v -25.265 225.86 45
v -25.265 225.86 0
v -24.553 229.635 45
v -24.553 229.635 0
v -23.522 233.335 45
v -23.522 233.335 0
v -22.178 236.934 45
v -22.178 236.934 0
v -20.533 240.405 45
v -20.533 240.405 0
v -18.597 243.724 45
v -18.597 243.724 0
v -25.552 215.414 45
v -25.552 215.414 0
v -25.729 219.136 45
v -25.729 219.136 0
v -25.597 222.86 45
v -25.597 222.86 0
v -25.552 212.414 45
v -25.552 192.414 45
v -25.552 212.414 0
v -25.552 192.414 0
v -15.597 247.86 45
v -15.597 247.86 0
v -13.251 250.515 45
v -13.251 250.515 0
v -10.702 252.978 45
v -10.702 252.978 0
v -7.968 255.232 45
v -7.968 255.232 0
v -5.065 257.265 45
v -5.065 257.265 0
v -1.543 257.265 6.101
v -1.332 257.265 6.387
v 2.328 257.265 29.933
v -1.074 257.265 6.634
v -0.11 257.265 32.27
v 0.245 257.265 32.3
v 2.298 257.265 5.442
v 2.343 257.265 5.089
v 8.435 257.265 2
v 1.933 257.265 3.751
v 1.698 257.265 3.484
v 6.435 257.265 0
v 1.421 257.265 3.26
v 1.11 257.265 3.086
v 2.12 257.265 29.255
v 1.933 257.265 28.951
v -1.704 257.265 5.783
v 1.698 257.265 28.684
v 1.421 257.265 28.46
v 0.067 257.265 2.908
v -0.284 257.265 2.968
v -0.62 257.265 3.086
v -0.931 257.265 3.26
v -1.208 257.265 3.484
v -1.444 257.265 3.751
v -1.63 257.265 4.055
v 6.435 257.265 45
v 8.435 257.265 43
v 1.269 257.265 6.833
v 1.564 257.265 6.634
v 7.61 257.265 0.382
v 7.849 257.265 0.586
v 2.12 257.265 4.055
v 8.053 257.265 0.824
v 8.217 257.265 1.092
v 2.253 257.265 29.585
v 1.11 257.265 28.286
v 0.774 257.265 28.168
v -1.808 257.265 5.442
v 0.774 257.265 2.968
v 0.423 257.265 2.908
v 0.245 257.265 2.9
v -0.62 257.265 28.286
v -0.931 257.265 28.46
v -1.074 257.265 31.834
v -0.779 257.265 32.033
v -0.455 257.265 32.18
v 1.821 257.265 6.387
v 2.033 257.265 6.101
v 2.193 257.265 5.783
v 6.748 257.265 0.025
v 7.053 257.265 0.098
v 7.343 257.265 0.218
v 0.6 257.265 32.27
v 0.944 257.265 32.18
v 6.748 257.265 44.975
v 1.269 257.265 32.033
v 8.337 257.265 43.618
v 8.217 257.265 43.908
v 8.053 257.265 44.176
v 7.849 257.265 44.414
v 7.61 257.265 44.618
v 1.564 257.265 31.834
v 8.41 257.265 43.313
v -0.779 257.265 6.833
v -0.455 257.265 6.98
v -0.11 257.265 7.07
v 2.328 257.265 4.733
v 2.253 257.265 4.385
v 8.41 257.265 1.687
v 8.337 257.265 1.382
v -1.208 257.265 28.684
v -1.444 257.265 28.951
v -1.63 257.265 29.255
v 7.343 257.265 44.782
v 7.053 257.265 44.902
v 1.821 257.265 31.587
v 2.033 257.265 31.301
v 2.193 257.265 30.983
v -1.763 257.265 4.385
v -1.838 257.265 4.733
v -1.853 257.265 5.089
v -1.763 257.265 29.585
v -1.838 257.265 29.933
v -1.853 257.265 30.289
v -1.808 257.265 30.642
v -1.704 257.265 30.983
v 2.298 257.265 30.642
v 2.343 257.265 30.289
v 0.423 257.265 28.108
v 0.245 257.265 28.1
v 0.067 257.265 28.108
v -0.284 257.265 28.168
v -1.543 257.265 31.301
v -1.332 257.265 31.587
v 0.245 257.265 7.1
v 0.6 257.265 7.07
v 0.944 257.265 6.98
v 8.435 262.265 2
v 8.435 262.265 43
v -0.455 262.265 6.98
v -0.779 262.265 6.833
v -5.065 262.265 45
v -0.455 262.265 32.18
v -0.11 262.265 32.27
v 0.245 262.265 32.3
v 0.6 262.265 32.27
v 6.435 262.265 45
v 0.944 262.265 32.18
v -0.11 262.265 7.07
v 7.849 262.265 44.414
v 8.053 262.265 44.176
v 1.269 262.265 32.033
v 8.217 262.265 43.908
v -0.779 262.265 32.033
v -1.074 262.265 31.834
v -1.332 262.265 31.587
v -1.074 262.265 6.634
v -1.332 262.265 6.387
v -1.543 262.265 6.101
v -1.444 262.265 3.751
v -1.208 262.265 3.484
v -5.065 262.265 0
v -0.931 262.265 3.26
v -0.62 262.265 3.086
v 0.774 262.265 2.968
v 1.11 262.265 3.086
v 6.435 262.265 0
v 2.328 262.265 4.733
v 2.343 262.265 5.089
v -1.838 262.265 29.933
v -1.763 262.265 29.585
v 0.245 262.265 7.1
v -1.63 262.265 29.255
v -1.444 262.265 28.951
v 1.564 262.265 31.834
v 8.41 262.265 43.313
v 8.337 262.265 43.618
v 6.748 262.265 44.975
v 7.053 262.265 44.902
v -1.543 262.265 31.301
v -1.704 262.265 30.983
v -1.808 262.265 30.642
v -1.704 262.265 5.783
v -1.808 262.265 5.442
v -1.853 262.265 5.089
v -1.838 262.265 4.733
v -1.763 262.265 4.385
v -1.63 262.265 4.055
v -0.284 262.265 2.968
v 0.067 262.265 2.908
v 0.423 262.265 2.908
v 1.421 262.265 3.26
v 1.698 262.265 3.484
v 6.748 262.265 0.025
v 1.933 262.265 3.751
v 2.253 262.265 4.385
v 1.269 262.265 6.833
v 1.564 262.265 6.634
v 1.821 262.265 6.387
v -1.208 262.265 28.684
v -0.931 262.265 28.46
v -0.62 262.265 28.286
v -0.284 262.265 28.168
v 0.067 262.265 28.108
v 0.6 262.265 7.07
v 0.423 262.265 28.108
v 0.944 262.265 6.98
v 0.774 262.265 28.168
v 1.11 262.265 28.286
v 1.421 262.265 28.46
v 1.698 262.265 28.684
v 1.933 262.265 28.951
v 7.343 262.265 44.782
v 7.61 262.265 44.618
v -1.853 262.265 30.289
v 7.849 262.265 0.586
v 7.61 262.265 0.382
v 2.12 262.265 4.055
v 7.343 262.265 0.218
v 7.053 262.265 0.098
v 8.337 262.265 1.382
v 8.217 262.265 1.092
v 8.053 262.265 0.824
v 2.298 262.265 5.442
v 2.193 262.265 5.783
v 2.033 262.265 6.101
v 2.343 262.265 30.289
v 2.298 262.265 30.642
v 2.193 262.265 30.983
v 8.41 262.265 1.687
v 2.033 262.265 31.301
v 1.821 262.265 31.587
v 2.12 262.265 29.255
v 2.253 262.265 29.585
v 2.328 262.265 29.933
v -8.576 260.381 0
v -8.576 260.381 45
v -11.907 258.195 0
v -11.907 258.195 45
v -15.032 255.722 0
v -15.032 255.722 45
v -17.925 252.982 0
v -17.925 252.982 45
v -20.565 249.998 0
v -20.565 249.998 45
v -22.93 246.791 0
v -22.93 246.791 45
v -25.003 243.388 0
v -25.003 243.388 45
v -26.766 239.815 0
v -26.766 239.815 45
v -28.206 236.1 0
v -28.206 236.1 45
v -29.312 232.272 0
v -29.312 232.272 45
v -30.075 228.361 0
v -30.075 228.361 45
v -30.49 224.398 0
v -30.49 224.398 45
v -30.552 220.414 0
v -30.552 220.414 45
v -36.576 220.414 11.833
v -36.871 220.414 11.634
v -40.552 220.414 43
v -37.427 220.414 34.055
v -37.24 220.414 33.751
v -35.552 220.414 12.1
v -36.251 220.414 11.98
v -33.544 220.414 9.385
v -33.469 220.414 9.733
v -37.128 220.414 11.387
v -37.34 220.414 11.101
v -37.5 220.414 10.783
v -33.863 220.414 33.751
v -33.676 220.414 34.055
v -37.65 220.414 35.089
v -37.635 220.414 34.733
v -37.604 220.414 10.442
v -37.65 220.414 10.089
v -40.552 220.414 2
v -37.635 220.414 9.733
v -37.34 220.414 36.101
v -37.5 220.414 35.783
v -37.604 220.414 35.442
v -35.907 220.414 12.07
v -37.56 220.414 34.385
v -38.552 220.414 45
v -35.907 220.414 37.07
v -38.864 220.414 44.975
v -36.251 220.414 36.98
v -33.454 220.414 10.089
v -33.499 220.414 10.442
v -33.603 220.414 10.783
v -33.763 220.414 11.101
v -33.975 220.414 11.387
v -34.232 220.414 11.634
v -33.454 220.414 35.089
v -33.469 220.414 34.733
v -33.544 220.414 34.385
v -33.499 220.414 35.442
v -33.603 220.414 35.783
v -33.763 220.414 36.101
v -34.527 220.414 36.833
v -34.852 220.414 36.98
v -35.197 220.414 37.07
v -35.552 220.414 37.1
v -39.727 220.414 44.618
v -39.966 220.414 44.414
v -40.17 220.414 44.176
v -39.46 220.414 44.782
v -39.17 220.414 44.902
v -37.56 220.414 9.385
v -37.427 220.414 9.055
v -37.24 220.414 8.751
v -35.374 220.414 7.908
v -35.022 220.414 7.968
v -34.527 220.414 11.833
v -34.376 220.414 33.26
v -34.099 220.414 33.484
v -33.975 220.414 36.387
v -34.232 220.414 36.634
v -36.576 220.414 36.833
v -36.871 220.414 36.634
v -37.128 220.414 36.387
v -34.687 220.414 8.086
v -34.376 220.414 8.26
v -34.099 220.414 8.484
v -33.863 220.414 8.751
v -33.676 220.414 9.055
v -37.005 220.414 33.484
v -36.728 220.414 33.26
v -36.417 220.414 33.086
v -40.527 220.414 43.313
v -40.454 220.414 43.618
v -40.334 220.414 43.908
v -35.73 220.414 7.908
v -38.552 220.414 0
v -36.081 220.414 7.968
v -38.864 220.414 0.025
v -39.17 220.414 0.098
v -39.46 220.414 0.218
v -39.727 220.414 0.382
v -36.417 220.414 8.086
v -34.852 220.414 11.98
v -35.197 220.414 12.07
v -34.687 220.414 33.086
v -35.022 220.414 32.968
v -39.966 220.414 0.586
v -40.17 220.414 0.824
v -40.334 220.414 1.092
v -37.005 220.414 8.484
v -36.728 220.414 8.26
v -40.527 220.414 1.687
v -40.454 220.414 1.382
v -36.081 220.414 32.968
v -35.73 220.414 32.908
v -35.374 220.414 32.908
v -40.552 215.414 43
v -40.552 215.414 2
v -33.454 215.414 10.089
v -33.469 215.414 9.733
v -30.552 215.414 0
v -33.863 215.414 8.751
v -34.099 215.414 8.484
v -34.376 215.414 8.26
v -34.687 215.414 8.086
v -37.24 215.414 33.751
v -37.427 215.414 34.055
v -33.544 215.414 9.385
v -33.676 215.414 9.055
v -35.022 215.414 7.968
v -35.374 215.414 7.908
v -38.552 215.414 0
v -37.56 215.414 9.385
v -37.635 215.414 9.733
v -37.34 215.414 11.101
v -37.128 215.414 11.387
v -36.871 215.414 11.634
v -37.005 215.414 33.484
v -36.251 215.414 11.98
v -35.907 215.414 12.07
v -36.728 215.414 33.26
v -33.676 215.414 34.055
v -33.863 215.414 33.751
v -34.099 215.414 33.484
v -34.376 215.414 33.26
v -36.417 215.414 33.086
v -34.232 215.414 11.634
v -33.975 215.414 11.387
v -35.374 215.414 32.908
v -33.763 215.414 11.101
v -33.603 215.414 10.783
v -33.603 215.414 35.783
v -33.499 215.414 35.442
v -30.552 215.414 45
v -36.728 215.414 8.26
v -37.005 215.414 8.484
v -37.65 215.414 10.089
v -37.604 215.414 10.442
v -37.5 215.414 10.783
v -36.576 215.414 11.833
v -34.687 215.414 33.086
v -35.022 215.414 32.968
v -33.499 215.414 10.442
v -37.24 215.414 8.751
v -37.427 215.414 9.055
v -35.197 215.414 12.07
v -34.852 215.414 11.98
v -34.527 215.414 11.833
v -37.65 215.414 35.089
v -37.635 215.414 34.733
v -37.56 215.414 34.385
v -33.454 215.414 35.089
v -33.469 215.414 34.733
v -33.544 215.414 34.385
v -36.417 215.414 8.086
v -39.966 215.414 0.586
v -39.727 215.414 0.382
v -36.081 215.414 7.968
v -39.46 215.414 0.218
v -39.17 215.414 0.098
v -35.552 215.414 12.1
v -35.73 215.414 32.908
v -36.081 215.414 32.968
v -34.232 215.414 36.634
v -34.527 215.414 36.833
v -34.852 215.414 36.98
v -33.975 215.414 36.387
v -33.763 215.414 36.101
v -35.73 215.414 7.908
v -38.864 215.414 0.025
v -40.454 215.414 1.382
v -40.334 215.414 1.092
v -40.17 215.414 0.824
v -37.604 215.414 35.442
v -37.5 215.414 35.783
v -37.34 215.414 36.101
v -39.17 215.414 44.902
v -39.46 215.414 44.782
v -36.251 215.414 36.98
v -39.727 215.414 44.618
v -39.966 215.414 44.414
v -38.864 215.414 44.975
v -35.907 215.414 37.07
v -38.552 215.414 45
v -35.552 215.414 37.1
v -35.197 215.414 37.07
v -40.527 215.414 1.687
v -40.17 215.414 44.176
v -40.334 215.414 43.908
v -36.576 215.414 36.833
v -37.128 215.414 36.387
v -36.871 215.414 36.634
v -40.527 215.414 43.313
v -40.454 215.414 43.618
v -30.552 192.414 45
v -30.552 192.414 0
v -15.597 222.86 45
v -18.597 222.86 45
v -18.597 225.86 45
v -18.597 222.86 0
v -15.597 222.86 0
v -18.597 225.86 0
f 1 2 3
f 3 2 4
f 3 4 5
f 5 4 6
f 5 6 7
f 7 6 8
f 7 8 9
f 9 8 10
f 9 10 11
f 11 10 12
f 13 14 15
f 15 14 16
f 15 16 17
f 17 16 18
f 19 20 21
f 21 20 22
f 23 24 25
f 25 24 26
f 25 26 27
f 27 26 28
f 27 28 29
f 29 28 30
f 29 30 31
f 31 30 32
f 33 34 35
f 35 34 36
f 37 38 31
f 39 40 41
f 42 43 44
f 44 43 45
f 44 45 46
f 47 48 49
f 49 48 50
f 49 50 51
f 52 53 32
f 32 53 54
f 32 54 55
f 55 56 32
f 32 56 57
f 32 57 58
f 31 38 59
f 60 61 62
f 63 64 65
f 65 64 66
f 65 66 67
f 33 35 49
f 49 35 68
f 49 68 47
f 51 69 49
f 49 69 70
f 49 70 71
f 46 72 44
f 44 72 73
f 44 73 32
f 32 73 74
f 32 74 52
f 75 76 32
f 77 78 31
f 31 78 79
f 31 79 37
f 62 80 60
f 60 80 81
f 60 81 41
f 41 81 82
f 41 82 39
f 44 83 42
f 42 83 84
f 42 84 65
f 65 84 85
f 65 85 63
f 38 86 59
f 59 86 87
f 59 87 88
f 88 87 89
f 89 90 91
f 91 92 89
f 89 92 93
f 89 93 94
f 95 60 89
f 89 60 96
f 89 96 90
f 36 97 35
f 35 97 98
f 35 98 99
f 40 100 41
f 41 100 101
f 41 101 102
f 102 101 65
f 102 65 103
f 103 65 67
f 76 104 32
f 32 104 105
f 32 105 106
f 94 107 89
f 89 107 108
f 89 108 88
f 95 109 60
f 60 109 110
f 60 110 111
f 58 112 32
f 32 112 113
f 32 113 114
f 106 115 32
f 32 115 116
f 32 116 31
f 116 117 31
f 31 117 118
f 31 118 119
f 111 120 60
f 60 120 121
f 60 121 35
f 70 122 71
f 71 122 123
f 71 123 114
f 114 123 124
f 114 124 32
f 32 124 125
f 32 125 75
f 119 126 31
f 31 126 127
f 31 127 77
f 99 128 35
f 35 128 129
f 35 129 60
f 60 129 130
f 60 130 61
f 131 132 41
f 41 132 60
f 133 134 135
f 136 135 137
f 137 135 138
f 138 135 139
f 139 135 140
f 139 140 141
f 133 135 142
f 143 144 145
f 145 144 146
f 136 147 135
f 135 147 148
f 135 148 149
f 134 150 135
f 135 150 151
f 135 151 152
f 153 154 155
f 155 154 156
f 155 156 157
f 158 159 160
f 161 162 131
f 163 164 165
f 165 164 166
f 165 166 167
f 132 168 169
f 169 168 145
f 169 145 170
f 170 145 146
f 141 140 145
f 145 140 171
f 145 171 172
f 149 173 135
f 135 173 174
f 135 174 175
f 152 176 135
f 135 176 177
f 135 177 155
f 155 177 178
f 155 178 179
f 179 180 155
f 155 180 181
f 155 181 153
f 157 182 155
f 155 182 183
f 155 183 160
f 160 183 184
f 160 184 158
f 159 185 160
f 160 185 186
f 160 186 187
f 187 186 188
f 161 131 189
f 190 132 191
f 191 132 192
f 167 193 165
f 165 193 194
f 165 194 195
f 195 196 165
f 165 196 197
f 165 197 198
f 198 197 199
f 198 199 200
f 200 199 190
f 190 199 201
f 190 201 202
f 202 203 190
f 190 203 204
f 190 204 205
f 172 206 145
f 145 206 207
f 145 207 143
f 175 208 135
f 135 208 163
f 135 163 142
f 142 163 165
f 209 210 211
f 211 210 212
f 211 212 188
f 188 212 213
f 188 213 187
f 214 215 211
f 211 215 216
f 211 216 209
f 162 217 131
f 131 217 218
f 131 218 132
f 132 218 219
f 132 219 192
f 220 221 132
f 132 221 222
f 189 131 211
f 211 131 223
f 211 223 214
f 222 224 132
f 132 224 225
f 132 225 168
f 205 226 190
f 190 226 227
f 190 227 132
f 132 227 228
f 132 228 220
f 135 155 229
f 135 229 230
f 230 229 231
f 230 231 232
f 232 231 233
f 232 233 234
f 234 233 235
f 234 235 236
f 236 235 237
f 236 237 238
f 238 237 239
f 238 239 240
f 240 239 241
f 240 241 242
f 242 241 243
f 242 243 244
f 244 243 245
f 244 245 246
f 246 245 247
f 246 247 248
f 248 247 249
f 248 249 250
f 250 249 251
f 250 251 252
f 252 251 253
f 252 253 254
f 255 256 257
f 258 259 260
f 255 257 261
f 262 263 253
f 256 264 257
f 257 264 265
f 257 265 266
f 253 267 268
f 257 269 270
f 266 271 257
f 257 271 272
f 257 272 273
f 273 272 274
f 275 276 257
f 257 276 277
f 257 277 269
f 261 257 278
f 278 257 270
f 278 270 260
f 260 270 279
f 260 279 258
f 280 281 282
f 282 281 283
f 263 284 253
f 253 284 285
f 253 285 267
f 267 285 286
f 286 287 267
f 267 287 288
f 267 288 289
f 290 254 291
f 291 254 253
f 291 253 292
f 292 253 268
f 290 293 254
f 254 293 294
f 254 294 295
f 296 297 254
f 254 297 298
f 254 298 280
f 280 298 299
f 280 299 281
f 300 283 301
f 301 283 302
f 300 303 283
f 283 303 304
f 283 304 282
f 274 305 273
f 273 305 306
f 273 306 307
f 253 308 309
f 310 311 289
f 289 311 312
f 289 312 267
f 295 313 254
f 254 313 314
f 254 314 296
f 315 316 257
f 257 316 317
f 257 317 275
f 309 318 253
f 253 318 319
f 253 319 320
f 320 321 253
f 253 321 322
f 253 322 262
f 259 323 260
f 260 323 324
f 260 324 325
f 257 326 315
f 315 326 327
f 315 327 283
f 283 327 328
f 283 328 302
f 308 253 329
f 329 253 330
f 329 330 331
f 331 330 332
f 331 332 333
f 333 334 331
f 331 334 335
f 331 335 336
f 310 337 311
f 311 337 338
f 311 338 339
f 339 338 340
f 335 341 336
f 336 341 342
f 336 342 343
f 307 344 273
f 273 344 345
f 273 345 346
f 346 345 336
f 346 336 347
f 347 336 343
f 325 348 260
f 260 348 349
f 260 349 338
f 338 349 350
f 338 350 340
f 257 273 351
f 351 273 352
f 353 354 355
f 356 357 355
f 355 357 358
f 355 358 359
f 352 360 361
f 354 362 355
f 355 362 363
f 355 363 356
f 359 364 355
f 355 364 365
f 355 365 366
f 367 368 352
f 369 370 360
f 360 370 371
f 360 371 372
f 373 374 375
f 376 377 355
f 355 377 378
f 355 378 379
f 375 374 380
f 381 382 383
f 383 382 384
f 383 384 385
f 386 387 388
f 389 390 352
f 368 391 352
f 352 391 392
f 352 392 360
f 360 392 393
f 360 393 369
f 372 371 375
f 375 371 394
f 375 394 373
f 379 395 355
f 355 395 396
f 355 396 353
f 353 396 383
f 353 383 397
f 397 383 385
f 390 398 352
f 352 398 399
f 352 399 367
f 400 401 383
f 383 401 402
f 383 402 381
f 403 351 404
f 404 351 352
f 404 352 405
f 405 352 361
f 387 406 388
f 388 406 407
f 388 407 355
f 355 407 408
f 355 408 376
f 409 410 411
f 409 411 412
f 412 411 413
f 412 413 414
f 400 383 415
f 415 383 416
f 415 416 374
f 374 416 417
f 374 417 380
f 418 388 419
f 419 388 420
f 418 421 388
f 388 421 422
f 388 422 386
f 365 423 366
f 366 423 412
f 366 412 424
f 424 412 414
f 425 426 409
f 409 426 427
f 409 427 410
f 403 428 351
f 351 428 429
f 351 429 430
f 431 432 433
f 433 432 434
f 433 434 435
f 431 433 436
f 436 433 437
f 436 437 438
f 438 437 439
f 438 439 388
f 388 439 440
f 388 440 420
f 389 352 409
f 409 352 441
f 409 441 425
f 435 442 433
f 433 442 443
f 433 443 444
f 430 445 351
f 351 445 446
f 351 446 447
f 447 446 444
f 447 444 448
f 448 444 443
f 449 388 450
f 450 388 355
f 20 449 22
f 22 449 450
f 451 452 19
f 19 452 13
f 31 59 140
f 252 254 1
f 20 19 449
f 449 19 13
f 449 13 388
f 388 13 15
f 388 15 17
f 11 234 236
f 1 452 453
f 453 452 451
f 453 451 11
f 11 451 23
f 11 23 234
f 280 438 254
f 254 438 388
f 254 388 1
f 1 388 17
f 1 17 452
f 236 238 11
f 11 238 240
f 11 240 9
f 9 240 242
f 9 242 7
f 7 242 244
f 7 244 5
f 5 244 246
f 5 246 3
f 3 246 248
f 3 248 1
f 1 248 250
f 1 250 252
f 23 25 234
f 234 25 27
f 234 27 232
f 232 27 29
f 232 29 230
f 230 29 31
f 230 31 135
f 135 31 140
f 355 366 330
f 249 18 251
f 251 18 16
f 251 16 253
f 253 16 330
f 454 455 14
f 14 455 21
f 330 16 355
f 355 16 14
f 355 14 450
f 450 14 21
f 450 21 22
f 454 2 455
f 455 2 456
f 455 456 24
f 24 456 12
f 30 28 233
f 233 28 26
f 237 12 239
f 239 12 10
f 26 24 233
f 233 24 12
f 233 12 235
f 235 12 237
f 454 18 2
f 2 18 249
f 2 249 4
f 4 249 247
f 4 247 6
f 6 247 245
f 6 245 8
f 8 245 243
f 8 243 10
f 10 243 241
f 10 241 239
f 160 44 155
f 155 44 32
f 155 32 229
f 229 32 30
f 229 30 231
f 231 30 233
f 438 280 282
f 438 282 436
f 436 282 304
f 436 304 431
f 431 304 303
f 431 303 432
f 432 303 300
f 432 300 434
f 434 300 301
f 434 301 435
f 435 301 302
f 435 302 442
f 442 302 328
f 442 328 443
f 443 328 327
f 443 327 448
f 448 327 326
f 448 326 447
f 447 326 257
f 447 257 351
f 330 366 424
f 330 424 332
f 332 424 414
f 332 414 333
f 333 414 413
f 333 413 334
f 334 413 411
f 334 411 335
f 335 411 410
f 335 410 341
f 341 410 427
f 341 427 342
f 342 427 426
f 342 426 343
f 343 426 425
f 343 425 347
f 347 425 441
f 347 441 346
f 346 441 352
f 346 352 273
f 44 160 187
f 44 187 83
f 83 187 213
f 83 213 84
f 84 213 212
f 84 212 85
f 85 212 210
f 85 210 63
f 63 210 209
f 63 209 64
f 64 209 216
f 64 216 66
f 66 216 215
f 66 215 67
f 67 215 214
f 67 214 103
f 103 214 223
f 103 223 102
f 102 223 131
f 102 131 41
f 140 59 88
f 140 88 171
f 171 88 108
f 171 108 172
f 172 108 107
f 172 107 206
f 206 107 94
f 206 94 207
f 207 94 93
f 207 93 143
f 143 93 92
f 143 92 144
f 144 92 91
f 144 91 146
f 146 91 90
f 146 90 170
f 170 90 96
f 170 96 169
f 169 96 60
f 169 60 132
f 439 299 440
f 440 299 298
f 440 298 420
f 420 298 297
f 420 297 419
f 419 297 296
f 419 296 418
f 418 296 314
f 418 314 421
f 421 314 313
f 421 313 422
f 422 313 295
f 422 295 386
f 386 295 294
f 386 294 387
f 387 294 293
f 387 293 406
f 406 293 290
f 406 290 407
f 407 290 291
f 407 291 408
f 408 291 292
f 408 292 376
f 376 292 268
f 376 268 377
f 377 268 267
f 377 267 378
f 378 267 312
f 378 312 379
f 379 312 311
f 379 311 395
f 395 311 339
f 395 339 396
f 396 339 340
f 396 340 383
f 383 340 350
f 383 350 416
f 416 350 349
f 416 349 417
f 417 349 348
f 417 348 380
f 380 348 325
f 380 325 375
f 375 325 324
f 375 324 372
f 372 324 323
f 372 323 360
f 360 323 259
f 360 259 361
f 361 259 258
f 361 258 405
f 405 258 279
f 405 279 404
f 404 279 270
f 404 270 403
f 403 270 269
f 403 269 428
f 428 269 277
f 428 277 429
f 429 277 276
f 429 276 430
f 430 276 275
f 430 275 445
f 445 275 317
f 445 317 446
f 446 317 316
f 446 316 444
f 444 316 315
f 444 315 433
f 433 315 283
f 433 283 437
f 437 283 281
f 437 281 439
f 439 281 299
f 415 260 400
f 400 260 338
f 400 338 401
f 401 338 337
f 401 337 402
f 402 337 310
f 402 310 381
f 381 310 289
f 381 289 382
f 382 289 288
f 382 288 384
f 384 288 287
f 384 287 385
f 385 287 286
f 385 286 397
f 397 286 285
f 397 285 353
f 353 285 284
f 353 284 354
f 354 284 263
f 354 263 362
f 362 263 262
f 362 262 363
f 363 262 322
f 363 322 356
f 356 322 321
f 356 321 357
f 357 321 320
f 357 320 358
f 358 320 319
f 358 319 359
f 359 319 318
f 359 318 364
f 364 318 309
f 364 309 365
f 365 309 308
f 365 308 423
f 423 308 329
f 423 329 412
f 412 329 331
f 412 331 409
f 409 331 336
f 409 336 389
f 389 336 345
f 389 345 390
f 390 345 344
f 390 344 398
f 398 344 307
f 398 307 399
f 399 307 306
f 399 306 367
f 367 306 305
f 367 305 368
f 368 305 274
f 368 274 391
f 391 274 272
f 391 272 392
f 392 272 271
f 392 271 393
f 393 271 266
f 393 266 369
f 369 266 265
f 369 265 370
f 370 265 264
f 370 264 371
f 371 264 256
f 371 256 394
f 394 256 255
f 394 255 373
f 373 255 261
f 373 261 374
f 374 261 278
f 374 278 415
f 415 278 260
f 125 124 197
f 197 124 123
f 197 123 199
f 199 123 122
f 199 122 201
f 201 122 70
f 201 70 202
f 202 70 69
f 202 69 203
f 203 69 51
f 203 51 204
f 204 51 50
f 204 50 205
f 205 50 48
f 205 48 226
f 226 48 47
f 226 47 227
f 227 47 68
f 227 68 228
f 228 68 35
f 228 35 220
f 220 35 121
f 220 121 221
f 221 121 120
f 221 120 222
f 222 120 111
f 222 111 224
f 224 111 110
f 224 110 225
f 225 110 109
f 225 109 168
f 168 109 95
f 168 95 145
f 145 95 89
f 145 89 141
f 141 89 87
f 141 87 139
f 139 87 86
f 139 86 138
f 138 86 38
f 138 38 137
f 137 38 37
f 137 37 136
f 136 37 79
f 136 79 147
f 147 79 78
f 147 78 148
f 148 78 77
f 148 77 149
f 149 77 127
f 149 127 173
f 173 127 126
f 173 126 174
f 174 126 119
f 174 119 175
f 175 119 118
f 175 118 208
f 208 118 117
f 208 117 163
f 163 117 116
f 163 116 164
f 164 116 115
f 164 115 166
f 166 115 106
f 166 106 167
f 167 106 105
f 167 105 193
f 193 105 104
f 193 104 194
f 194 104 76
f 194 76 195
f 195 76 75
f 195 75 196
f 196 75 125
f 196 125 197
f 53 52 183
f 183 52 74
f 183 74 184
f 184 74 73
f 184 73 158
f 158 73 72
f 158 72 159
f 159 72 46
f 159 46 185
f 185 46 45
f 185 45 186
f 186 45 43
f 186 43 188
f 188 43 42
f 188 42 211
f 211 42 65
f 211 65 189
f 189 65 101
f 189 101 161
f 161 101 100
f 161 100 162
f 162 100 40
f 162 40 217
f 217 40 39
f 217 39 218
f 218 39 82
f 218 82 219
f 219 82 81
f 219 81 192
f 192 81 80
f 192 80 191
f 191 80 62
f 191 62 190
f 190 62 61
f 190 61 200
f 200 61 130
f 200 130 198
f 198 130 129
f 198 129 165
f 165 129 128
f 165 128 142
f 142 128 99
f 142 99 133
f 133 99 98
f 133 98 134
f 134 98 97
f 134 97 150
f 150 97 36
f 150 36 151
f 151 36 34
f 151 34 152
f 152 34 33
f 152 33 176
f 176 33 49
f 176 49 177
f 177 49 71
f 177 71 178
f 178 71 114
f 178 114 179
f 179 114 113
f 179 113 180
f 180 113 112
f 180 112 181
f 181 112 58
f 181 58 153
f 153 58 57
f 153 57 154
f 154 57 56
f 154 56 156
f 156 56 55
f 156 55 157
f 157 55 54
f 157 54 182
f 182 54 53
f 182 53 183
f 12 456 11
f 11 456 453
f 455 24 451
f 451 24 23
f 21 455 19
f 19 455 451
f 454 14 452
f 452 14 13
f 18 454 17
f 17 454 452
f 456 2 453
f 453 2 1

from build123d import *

# Parameters (mm, degrees)
SKETCH3_W           = 13.5
SKETCH3_H           = 5
SKETCH3_W_2         = 10
SKETCH3_W_3         = 5
SKETCH3_H_2         = 23
BOSS_EXTRUDE1_DEPTH = 45
FILLET1_R           = 2
SKETCH5_R           = 2.1
CUT_EXTRUDE2_DEPTH  = 45
SKETCH6_R           = 2.1
CUT_EXTRUDE3_DEPTH  = 45
SKETCH7_W           = 8.210459319
SKETCH7_H           = 32.58724939
BOSS_EXTRUDE2_DEPTH = 5
SKETCH8_R           = 2.1
CUT_EXTRUDE5_DEPTH  = 45
BOSS_EXTRUDE3_DEPTH = 45


with BuildPart() as part:
    # Sketch3 → Boss-Extrude1 (new body)
    with BuildSketch(Plane.XY):
        with BuildLine():
            ThreePointArc((-5.06519953, 257.264696919), (-21.146881422, 239.197551787), (-25.551614771, 215.414352888))
            Line((-25.551614771, 215.414352888), (-30.551614771, 215.414352888))
            Line((-30.551614771, 215.414352888), (-30.551614771, 220.414352888))
            ThreePointArc((-30.551614771, 220.414352888), (-24.004098535, 245.112635185), (-5.06519953, 262.264696919))
            Line((-5.06519953, 262.264696919), (-5.06519953, 257.264696919))
        make_face()
        with Locations((1.68480047, 259.764696919)):
            Rectangle(SKETCH3_W, SKETCH3_H)
        with Locations((-35.551614771, 217.914352888)):
            Rectangle(SKETCH3_W_2, SKETCH3_H)
        with Locations((-28.051614771, 203.914352888)):
            Rectangle(SKETCH3_W_3, SKETCH3_H_2)
    extrude(amount=BOSS_EXTRUDE1_DEPTH)

    # Fillet1
    fillet1_edges = [part.edges().sort_by_distance(p)[0] for p in [
        (-40.551614771, 217.914352888, 0),
        (8.43480047, 259.764696919, 45),
        (8.43480047, 259.764696919, 0),
        (-40.551614771, 217.914352888, 45),
    ]]
    fillet(fillet1_edges, radius=FILLET1_R)

    # Sketch5 → Cut-Extrude2 (cut)
    with BuildSketch(Plane(origin=(0, 262.264696919, 0), x_dir=(1, 0, 0), z_dir=(0, 1, 0))):
        with Locations((0.24480047, -40)):
            Circle(SKETCH5_R)
        with Locations((0.24480047, -14.8)):
            Circle(SKETCH5_R)
    extrude(amount=-CUT_EXTRUDE2_DEPTH, mode=Mode.SUBTRACT)

    # Sketch6 → Cut-Extrude3 (cut)
    with BuildSketch(Plane(origin=(0, 220.414352888, 0), x_dir=(1, 0, 0), z_dir=(0, 1, 0))):
        with Locations((-35.551614771, -10)):
            Circle(SKETCH6_R)
        with Locations((-35.551614771, -35)):
            Circle(SKETCH6_R)
    extrude(amount=-CUT_EXTRUDE3_DEPTH, mode=Mode.SUBTRACT)

    # Sketch7 → Boss-Extrude2 (add)
    with BuildSketch(Plane(origin=(0, 262.264696919, 0), x_dir=(1, 0, 0), z_dir=(0, 1, 0))):
        with Locations((1.09445166, -26.923464517)):
            Rectangle(SKETCH7_W, SKETCH7_H)
    extrude(amount=-BOSS_EXTRUDE2_DEPTH)

    # Sketch8 → Cut-Extrude5 (cut)
    with BuildSketch(Plane(origin=(0, 262.264696919, 0), x_dir=(1, 0, 0), z_dir=(0, 1, 0))):
        with Locations((0.24480047, -5)):
            Circle(SKETCH8_R)
        with Locations((0.24480047, -30.2)):
            Circle(SKETCH8_R)
    extrude(amount=-CUT_EXTRUDE5_DEPTH, mode=Mode.SUBTRACT)

    # Sketch9 → Boss-Extrude3 (add, through all)
    with BuildSketch(Plane.XY.offset(45)):
        with BuildLine():
            ThreePointArc((-25.265361734, 225.859750777), (-25.456525287, 224.362535182), (-25.597369426, 222.859750777))
            Line((-25.597369426, 222.859750777), (-18.597369426, 222.859750777))
            Line((-18.597369426, 222.859750777), (-15.597369426, 222.859750777))
            Line((-15.597369426, 222.859750777), (-15.597369426, 247.859750777))
            ThreePointArc((-15.597369426, 247.859750777), (-17.156118075, 245.834377519), (-18.597369426, 243.72377838))
            Line((-18.597369426, 243.72377838), (-18.597369426, 225.859750777))
            Line((-18.597369426, 225.859750777), (-25.265361734, 225.859750777))
        make_face()
        Polygon((-15.597369426, 222.859750777), (-18.597369426, 222.859750777), (-25.551614771, 215.414352888), (-25.551614771, 212.414352888), align=None)
    extrude(amount=-BOSS_EXTRUDE3_DEPTH)


solid = part.part
